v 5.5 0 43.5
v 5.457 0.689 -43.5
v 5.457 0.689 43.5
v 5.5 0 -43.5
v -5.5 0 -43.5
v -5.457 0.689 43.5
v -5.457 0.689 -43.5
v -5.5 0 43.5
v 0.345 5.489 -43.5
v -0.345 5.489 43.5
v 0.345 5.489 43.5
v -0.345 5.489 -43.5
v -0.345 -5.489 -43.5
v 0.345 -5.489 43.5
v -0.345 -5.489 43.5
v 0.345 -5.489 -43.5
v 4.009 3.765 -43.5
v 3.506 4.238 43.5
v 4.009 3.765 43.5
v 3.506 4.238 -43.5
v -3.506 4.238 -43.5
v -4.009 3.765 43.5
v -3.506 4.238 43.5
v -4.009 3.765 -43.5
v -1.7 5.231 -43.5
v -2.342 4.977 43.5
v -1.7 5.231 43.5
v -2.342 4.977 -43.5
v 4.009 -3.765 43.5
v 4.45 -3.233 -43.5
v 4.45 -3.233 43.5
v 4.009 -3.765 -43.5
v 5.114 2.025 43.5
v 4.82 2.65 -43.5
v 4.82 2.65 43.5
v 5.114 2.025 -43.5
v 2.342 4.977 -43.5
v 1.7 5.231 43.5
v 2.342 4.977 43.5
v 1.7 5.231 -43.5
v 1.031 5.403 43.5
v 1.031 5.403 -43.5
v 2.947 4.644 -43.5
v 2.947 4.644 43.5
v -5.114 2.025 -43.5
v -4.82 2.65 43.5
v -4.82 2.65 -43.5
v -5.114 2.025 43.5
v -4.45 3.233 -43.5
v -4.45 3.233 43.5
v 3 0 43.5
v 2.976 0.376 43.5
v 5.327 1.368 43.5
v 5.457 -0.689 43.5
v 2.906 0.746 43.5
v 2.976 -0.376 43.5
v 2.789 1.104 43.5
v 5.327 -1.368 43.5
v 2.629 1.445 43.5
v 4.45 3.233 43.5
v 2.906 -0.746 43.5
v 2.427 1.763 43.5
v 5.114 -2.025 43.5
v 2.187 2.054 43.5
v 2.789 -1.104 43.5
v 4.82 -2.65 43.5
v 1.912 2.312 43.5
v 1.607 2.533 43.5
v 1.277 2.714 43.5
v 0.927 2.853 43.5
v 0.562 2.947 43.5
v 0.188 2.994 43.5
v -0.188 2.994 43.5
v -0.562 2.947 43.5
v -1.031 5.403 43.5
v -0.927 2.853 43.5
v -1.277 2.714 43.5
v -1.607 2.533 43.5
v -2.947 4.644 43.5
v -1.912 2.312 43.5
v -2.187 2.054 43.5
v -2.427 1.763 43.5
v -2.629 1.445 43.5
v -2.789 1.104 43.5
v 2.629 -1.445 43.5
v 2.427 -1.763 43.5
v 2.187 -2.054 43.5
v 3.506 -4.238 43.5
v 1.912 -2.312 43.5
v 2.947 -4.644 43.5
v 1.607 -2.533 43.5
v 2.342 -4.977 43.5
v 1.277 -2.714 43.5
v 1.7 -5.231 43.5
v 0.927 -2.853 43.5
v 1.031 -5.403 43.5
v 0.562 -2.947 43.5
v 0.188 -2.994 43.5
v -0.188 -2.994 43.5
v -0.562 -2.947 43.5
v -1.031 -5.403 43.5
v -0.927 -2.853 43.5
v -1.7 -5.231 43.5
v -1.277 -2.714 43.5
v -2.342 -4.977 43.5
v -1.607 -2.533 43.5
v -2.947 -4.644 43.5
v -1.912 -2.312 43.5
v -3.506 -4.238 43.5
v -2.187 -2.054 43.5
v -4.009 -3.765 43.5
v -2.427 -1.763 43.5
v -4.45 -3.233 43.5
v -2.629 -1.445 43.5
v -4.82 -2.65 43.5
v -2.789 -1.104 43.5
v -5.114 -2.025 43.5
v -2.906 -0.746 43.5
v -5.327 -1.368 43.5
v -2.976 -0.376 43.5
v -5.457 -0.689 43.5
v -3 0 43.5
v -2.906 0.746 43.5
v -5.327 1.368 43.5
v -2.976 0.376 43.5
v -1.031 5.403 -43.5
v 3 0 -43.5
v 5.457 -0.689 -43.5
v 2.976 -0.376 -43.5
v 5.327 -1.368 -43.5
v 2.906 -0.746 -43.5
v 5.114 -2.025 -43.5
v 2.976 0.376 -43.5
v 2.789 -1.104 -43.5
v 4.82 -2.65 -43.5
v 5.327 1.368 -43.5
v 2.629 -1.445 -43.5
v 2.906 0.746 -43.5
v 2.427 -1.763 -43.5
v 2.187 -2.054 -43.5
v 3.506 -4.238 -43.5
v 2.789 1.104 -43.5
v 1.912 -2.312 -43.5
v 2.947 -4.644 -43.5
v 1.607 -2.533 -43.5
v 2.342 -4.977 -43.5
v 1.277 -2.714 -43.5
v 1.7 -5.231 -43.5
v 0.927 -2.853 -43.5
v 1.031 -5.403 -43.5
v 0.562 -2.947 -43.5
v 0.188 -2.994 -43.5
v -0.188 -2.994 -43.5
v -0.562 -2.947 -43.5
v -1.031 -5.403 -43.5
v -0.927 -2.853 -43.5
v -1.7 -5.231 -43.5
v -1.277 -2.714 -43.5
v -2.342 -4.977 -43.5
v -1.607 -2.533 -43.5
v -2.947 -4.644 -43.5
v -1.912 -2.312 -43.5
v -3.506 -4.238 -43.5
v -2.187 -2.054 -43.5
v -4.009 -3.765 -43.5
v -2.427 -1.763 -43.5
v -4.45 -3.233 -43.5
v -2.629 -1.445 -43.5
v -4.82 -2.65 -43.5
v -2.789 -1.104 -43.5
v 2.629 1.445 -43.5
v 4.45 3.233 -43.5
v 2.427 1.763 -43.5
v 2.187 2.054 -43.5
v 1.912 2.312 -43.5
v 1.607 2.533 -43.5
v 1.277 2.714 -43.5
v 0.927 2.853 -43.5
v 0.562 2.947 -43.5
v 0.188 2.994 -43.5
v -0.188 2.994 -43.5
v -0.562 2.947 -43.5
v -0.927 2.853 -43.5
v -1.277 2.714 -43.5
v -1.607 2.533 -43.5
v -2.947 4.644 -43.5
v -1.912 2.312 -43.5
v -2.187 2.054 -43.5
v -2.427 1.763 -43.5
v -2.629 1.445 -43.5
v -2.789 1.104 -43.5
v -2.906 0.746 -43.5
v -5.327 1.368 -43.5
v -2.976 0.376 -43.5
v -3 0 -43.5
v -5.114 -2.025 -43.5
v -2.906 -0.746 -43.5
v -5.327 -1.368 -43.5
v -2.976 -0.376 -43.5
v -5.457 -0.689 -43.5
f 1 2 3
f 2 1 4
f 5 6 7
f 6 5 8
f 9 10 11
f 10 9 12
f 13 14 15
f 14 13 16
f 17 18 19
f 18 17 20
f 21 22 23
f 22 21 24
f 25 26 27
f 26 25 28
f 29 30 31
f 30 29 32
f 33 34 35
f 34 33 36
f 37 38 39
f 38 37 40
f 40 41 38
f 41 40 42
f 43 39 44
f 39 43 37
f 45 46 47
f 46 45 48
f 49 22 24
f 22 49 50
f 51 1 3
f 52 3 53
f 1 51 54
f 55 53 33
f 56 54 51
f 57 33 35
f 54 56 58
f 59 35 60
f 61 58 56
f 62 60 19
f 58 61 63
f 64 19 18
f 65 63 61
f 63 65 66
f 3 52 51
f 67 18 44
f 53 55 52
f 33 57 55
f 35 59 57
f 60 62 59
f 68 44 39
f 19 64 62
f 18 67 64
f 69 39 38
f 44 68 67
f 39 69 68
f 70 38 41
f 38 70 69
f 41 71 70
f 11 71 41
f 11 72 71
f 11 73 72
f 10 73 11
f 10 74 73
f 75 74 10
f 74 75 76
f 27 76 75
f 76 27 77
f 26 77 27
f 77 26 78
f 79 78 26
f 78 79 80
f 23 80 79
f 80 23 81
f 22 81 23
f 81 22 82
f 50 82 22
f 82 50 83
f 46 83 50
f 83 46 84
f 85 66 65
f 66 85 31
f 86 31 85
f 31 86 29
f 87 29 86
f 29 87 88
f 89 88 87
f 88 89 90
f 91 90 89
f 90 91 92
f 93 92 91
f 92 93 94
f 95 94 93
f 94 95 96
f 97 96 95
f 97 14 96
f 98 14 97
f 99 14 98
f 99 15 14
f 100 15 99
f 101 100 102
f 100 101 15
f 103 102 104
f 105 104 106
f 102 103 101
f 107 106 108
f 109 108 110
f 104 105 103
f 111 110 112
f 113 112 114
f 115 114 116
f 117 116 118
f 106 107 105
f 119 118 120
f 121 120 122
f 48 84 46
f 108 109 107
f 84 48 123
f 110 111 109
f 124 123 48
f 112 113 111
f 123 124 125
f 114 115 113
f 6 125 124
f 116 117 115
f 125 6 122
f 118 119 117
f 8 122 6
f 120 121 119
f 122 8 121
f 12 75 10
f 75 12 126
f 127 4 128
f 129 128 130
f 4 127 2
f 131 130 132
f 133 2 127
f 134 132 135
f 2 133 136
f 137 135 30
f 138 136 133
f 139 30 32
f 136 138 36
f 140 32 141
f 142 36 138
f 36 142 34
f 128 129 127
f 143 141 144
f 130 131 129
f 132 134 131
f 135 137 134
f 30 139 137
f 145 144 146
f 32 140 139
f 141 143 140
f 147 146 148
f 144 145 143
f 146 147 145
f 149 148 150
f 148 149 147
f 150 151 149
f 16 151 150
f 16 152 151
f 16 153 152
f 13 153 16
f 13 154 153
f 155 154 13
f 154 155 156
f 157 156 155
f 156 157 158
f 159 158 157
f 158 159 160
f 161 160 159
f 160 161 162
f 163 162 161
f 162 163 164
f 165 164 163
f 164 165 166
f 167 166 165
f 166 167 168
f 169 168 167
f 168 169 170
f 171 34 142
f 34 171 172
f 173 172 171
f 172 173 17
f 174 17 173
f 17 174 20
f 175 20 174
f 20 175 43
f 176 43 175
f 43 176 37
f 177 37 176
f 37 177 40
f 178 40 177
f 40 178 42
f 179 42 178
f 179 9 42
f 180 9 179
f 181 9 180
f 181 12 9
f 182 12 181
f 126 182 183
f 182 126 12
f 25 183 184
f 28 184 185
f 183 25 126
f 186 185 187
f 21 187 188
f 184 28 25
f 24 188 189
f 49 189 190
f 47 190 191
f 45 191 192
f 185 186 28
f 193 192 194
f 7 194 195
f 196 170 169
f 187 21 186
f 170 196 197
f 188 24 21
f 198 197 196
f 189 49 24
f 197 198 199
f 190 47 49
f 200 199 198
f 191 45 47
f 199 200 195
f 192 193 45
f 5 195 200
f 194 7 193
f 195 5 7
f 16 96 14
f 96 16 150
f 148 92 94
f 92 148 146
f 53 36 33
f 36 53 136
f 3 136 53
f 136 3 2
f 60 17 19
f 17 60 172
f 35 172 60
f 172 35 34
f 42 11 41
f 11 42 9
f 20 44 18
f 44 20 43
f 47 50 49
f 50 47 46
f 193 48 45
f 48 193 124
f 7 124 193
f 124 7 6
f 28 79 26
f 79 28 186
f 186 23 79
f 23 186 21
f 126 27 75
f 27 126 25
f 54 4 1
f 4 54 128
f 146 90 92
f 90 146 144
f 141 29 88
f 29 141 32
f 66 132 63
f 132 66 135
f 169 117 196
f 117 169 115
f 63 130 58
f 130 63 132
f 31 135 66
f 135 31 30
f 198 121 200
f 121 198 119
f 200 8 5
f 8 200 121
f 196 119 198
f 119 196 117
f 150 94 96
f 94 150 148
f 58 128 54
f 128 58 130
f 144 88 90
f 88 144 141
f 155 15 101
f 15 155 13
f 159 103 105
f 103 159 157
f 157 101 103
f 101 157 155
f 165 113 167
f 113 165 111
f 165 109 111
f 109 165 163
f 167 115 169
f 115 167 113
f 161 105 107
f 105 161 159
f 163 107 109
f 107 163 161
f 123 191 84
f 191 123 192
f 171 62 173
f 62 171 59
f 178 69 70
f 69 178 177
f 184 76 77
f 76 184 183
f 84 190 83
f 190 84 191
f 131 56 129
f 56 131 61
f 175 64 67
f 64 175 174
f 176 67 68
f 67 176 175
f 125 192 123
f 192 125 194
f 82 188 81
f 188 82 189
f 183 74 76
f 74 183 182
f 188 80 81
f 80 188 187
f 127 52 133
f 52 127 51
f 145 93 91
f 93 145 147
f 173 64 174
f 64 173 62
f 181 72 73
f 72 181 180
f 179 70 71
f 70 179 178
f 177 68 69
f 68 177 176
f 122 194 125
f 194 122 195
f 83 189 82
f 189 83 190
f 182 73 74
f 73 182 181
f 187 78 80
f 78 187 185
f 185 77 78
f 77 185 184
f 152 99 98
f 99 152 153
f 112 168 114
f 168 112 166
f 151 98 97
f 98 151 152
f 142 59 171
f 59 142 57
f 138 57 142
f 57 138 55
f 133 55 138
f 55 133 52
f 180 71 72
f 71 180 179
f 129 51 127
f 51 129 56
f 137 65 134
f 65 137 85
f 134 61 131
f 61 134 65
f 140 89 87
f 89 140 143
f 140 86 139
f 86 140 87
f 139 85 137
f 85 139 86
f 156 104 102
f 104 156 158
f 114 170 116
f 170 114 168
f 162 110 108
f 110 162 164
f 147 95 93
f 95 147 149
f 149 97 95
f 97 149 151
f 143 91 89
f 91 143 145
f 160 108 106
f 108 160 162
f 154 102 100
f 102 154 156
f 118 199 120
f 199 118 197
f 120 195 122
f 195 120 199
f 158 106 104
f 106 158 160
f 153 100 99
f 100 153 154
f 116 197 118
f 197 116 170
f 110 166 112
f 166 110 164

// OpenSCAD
$fn = 50;


difference() {
	union() {
		translate(v = [0, 0, -43.5000000000]) {
			cylinder(h = 87, r = 5.5000000000);
		}
	}
	union() {
		translate(v = [0, 0, -100.0000000000]) {
			cylinder(h = 200, r = 3.0000000000);
		}
	}
}
